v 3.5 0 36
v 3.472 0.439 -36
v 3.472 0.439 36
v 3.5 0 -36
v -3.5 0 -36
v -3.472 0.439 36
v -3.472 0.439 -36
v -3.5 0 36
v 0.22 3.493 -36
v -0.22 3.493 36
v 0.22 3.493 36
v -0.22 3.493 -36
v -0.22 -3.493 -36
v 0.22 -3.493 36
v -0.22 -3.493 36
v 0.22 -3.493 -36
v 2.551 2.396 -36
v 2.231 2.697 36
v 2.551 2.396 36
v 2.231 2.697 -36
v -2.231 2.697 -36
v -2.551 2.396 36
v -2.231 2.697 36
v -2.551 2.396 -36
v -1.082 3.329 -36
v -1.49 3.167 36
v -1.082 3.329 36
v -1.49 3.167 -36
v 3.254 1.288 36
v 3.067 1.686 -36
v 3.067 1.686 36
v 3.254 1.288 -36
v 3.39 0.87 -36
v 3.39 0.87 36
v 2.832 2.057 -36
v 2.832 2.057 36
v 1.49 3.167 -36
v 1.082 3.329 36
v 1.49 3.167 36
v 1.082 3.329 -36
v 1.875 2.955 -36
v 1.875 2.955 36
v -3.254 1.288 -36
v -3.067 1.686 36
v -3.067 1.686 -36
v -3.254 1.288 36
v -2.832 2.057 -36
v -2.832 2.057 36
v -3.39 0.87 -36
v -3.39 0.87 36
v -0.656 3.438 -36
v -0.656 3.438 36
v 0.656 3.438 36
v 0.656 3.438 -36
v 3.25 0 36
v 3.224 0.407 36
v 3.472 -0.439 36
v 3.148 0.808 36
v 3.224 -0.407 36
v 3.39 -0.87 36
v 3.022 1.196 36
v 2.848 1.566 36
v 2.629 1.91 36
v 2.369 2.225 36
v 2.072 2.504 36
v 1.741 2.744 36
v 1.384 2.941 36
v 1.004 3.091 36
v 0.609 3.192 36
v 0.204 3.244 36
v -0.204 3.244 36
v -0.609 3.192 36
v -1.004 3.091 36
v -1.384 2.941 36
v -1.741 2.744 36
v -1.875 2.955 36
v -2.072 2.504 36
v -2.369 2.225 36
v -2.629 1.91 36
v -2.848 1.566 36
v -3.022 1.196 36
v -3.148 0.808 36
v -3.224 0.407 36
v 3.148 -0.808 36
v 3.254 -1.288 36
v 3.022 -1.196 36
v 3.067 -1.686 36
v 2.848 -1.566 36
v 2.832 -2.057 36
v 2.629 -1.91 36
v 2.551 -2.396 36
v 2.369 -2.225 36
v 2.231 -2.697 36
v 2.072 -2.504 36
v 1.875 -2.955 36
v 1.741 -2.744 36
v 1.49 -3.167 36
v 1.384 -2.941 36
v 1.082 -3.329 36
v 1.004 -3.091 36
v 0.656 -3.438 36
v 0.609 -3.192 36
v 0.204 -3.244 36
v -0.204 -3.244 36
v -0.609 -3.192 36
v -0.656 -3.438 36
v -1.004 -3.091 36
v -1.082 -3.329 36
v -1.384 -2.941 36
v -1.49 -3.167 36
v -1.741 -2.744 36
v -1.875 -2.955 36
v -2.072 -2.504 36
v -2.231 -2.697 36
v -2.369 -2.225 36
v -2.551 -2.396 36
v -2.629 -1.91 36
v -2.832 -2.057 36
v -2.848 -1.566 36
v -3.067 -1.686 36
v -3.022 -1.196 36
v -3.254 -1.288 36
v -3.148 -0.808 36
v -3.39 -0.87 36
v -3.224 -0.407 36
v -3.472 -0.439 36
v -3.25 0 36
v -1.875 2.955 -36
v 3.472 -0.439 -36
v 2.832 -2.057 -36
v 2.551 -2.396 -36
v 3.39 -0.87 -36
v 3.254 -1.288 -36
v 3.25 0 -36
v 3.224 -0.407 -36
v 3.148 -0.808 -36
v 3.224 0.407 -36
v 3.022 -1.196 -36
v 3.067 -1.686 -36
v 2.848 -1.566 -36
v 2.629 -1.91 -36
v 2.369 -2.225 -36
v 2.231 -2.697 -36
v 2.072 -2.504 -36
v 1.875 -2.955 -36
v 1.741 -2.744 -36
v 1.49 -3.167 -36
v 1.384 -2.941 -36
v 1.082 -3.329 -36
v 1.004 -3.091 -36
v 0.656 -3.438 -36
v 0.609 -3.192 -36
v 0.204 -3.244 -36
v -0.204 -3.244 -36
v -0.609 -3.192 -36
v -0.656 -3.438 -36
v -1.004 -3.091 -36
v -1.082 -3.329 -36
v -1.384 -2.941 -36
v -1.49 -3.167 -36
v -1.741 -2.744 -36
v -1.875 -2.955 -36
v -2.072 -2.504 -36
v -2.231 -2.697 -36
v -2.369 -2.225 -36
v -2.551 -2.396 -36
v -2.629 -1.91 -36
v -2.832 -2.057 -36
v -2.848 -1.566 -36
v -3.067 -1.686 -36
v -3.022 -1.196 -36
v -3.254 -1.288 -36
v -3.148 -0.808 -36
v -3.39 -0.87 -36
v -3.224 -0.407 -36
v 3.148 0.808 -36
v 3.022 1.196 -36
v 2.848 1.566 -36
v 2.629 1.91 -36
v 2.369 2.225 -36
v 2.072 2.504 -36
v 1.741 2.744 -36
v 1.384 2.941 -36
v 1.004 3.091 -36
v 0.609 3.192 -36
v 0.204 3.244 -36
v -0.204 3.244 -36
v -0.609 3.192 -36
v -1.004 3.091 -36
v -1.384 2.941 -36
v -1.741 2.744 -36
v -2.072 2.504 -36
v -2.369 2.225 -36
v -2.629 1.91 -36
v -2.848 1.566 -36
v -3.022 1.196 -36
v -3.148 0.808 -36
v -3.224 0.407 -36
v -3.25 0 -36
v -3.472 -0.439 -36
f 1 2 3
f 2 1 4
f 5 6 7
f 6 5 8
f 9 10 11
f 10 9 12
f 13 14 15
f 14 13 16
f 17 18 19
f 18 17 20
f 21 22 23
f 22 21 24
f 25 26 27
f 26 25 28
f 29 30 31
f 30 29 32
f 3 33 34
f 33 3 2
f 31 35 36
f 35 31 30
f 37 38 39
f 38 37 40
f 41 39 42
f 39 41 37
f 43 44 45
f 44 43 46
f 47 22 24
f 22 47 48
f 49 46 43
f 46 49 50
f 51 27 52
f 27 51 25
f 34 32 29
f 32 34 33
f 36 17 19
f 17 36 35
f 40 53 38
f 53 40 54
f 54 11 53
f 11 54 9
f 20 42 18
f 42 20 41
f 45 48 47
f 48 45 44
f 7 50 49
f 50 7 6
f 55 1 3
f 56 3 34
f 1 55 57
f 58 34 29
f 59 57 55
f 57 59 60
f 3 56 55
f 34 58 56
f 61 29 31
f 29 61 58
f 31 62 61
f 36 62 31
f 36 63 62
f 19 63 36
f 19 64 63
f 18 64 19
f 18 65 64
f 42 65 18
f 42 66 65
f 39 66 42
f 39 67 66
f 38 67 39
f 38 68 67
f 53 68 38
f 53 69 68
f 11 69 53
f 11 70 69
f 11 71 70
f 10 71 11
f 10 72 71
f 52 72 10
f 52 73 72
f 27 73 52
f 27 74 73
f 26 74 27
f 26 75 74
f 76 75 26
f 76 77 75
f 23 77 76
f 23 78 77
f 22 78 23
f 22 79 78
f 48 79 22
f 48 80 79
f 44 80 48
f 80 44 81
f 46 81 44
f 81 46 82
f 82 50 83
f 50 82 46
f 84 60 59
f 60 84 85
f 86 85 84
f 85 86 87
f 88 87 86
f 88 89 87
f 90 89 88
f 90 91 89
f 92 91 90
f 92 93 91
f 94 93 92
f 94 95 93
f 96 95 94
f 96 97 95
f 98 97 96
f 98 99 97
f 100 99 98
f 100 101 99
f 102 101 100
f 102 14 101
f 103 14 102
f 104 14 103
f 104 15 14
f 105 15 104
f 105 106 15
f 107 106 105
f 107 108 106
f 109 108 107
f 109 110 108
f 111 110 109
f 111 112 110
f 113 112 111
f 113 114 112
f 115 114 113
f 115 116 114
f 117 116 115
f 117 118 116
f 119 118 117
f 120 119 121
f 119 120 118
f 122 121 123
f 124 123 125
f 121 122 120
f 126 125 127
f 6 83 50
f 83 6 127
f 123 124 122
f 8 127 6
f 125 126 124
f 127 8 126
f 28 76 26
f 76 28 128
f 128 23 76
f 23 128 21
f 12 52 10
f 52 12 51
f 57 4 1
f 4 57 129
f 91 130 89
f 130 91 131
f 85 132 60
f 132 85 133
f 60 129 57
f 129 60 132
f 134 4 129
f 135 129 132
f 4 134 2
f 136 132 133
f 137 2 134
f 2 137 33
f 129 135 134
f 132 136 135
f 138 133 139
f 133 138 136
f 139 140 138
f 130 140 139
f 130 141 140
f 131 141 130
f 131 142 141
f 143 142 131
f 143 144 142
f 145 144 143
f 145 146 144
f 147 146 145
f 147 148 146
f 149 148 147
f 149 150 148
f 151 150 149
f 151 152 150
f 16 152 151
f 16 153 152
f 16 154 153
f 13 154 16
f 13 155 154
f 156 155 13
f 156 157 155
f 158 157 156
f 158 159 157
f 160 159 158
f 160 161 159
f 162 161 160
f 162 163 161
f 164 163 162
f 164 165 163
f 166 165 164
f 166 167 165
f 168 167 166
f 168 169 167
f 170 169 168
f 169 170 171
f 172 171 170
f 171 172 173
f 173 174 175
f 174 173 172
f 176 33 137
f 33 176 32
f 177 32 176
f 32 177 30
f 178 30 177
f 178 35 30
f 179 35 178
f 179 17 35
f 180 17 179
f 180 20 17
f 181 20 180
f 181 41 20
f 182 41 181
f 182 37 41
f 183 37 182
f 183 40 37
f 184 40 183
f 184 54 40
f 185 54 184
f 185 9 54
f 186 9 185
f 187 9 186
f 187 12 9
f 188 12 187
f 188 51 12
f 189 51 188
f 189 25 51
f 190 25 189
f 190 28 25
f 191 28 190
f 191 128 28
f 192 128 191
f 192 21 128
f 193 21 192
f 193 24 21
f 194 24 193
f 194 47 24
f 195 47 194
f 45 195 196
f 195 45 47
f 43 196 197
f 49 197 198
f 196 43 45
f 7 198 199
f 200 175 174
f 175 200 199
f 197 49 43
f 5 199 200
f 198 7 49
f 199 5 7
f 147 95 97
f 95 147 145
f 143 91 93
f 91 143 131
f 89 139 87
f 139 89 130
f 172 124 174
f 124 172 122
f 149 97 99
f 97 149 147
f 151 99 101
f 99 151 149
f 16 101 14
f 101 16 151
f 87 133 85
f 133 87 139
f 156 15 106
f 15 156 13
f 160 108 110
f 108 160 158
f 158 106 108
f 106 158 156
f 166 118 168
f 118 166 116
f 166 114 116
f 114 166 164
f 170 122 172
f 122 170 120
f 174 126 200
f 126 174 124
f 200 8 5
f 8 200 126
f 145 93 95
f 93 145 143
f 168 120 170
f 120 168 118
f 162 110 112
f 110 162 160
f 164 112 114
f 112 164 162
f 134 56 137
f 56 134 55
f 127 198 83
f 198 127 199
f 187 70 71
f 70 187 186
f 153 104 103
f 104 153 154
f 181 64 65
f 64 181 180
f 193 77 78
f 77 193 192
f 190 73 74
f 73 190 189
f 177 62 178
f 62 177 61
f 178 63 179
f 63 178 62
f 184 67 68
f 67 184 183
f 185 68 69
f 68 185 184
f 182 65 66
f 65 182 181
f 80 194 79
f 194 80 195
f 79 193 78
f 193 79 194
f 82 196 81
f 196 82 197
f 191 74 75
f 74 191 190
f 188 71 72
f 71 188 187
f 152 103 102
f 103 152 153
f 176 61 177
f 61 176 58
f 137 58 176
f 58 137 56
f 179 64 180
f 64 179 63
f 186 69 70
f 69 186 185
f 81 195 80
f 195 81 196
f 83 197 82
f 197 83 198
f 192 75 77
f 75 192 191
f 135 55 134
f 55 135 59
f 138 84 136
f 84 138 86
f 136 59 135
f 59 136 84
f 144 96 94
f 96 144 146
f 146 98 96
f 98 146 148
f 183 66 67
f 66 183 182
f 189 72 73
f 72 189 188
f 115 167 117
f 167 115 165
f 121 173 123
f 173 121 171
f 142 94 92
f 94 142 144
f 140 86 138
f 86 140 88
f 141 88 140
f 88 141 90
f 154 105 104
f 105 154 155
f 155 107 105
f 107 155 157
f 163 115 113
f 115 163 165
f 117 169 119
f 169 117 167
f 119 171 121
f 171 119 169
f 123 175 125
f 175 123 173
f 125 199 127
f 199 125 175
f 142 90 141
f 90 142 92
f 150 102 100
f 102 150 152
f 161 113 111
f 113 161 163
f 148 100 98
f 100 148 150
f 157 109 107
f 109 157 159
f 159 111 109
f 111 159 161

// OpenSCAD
$fn = 50;


difference() {
	union() {
		translate(v = [0, 0, -36.0000000000]) {
			cylinder(h = 72, r = 3.5000000000);
		}
	}
	union() {
		translate(v = [0, 0, -100.0000000000]) {
			cylinder(h = 200, r = 3.2500000000);
		}
	}
}
